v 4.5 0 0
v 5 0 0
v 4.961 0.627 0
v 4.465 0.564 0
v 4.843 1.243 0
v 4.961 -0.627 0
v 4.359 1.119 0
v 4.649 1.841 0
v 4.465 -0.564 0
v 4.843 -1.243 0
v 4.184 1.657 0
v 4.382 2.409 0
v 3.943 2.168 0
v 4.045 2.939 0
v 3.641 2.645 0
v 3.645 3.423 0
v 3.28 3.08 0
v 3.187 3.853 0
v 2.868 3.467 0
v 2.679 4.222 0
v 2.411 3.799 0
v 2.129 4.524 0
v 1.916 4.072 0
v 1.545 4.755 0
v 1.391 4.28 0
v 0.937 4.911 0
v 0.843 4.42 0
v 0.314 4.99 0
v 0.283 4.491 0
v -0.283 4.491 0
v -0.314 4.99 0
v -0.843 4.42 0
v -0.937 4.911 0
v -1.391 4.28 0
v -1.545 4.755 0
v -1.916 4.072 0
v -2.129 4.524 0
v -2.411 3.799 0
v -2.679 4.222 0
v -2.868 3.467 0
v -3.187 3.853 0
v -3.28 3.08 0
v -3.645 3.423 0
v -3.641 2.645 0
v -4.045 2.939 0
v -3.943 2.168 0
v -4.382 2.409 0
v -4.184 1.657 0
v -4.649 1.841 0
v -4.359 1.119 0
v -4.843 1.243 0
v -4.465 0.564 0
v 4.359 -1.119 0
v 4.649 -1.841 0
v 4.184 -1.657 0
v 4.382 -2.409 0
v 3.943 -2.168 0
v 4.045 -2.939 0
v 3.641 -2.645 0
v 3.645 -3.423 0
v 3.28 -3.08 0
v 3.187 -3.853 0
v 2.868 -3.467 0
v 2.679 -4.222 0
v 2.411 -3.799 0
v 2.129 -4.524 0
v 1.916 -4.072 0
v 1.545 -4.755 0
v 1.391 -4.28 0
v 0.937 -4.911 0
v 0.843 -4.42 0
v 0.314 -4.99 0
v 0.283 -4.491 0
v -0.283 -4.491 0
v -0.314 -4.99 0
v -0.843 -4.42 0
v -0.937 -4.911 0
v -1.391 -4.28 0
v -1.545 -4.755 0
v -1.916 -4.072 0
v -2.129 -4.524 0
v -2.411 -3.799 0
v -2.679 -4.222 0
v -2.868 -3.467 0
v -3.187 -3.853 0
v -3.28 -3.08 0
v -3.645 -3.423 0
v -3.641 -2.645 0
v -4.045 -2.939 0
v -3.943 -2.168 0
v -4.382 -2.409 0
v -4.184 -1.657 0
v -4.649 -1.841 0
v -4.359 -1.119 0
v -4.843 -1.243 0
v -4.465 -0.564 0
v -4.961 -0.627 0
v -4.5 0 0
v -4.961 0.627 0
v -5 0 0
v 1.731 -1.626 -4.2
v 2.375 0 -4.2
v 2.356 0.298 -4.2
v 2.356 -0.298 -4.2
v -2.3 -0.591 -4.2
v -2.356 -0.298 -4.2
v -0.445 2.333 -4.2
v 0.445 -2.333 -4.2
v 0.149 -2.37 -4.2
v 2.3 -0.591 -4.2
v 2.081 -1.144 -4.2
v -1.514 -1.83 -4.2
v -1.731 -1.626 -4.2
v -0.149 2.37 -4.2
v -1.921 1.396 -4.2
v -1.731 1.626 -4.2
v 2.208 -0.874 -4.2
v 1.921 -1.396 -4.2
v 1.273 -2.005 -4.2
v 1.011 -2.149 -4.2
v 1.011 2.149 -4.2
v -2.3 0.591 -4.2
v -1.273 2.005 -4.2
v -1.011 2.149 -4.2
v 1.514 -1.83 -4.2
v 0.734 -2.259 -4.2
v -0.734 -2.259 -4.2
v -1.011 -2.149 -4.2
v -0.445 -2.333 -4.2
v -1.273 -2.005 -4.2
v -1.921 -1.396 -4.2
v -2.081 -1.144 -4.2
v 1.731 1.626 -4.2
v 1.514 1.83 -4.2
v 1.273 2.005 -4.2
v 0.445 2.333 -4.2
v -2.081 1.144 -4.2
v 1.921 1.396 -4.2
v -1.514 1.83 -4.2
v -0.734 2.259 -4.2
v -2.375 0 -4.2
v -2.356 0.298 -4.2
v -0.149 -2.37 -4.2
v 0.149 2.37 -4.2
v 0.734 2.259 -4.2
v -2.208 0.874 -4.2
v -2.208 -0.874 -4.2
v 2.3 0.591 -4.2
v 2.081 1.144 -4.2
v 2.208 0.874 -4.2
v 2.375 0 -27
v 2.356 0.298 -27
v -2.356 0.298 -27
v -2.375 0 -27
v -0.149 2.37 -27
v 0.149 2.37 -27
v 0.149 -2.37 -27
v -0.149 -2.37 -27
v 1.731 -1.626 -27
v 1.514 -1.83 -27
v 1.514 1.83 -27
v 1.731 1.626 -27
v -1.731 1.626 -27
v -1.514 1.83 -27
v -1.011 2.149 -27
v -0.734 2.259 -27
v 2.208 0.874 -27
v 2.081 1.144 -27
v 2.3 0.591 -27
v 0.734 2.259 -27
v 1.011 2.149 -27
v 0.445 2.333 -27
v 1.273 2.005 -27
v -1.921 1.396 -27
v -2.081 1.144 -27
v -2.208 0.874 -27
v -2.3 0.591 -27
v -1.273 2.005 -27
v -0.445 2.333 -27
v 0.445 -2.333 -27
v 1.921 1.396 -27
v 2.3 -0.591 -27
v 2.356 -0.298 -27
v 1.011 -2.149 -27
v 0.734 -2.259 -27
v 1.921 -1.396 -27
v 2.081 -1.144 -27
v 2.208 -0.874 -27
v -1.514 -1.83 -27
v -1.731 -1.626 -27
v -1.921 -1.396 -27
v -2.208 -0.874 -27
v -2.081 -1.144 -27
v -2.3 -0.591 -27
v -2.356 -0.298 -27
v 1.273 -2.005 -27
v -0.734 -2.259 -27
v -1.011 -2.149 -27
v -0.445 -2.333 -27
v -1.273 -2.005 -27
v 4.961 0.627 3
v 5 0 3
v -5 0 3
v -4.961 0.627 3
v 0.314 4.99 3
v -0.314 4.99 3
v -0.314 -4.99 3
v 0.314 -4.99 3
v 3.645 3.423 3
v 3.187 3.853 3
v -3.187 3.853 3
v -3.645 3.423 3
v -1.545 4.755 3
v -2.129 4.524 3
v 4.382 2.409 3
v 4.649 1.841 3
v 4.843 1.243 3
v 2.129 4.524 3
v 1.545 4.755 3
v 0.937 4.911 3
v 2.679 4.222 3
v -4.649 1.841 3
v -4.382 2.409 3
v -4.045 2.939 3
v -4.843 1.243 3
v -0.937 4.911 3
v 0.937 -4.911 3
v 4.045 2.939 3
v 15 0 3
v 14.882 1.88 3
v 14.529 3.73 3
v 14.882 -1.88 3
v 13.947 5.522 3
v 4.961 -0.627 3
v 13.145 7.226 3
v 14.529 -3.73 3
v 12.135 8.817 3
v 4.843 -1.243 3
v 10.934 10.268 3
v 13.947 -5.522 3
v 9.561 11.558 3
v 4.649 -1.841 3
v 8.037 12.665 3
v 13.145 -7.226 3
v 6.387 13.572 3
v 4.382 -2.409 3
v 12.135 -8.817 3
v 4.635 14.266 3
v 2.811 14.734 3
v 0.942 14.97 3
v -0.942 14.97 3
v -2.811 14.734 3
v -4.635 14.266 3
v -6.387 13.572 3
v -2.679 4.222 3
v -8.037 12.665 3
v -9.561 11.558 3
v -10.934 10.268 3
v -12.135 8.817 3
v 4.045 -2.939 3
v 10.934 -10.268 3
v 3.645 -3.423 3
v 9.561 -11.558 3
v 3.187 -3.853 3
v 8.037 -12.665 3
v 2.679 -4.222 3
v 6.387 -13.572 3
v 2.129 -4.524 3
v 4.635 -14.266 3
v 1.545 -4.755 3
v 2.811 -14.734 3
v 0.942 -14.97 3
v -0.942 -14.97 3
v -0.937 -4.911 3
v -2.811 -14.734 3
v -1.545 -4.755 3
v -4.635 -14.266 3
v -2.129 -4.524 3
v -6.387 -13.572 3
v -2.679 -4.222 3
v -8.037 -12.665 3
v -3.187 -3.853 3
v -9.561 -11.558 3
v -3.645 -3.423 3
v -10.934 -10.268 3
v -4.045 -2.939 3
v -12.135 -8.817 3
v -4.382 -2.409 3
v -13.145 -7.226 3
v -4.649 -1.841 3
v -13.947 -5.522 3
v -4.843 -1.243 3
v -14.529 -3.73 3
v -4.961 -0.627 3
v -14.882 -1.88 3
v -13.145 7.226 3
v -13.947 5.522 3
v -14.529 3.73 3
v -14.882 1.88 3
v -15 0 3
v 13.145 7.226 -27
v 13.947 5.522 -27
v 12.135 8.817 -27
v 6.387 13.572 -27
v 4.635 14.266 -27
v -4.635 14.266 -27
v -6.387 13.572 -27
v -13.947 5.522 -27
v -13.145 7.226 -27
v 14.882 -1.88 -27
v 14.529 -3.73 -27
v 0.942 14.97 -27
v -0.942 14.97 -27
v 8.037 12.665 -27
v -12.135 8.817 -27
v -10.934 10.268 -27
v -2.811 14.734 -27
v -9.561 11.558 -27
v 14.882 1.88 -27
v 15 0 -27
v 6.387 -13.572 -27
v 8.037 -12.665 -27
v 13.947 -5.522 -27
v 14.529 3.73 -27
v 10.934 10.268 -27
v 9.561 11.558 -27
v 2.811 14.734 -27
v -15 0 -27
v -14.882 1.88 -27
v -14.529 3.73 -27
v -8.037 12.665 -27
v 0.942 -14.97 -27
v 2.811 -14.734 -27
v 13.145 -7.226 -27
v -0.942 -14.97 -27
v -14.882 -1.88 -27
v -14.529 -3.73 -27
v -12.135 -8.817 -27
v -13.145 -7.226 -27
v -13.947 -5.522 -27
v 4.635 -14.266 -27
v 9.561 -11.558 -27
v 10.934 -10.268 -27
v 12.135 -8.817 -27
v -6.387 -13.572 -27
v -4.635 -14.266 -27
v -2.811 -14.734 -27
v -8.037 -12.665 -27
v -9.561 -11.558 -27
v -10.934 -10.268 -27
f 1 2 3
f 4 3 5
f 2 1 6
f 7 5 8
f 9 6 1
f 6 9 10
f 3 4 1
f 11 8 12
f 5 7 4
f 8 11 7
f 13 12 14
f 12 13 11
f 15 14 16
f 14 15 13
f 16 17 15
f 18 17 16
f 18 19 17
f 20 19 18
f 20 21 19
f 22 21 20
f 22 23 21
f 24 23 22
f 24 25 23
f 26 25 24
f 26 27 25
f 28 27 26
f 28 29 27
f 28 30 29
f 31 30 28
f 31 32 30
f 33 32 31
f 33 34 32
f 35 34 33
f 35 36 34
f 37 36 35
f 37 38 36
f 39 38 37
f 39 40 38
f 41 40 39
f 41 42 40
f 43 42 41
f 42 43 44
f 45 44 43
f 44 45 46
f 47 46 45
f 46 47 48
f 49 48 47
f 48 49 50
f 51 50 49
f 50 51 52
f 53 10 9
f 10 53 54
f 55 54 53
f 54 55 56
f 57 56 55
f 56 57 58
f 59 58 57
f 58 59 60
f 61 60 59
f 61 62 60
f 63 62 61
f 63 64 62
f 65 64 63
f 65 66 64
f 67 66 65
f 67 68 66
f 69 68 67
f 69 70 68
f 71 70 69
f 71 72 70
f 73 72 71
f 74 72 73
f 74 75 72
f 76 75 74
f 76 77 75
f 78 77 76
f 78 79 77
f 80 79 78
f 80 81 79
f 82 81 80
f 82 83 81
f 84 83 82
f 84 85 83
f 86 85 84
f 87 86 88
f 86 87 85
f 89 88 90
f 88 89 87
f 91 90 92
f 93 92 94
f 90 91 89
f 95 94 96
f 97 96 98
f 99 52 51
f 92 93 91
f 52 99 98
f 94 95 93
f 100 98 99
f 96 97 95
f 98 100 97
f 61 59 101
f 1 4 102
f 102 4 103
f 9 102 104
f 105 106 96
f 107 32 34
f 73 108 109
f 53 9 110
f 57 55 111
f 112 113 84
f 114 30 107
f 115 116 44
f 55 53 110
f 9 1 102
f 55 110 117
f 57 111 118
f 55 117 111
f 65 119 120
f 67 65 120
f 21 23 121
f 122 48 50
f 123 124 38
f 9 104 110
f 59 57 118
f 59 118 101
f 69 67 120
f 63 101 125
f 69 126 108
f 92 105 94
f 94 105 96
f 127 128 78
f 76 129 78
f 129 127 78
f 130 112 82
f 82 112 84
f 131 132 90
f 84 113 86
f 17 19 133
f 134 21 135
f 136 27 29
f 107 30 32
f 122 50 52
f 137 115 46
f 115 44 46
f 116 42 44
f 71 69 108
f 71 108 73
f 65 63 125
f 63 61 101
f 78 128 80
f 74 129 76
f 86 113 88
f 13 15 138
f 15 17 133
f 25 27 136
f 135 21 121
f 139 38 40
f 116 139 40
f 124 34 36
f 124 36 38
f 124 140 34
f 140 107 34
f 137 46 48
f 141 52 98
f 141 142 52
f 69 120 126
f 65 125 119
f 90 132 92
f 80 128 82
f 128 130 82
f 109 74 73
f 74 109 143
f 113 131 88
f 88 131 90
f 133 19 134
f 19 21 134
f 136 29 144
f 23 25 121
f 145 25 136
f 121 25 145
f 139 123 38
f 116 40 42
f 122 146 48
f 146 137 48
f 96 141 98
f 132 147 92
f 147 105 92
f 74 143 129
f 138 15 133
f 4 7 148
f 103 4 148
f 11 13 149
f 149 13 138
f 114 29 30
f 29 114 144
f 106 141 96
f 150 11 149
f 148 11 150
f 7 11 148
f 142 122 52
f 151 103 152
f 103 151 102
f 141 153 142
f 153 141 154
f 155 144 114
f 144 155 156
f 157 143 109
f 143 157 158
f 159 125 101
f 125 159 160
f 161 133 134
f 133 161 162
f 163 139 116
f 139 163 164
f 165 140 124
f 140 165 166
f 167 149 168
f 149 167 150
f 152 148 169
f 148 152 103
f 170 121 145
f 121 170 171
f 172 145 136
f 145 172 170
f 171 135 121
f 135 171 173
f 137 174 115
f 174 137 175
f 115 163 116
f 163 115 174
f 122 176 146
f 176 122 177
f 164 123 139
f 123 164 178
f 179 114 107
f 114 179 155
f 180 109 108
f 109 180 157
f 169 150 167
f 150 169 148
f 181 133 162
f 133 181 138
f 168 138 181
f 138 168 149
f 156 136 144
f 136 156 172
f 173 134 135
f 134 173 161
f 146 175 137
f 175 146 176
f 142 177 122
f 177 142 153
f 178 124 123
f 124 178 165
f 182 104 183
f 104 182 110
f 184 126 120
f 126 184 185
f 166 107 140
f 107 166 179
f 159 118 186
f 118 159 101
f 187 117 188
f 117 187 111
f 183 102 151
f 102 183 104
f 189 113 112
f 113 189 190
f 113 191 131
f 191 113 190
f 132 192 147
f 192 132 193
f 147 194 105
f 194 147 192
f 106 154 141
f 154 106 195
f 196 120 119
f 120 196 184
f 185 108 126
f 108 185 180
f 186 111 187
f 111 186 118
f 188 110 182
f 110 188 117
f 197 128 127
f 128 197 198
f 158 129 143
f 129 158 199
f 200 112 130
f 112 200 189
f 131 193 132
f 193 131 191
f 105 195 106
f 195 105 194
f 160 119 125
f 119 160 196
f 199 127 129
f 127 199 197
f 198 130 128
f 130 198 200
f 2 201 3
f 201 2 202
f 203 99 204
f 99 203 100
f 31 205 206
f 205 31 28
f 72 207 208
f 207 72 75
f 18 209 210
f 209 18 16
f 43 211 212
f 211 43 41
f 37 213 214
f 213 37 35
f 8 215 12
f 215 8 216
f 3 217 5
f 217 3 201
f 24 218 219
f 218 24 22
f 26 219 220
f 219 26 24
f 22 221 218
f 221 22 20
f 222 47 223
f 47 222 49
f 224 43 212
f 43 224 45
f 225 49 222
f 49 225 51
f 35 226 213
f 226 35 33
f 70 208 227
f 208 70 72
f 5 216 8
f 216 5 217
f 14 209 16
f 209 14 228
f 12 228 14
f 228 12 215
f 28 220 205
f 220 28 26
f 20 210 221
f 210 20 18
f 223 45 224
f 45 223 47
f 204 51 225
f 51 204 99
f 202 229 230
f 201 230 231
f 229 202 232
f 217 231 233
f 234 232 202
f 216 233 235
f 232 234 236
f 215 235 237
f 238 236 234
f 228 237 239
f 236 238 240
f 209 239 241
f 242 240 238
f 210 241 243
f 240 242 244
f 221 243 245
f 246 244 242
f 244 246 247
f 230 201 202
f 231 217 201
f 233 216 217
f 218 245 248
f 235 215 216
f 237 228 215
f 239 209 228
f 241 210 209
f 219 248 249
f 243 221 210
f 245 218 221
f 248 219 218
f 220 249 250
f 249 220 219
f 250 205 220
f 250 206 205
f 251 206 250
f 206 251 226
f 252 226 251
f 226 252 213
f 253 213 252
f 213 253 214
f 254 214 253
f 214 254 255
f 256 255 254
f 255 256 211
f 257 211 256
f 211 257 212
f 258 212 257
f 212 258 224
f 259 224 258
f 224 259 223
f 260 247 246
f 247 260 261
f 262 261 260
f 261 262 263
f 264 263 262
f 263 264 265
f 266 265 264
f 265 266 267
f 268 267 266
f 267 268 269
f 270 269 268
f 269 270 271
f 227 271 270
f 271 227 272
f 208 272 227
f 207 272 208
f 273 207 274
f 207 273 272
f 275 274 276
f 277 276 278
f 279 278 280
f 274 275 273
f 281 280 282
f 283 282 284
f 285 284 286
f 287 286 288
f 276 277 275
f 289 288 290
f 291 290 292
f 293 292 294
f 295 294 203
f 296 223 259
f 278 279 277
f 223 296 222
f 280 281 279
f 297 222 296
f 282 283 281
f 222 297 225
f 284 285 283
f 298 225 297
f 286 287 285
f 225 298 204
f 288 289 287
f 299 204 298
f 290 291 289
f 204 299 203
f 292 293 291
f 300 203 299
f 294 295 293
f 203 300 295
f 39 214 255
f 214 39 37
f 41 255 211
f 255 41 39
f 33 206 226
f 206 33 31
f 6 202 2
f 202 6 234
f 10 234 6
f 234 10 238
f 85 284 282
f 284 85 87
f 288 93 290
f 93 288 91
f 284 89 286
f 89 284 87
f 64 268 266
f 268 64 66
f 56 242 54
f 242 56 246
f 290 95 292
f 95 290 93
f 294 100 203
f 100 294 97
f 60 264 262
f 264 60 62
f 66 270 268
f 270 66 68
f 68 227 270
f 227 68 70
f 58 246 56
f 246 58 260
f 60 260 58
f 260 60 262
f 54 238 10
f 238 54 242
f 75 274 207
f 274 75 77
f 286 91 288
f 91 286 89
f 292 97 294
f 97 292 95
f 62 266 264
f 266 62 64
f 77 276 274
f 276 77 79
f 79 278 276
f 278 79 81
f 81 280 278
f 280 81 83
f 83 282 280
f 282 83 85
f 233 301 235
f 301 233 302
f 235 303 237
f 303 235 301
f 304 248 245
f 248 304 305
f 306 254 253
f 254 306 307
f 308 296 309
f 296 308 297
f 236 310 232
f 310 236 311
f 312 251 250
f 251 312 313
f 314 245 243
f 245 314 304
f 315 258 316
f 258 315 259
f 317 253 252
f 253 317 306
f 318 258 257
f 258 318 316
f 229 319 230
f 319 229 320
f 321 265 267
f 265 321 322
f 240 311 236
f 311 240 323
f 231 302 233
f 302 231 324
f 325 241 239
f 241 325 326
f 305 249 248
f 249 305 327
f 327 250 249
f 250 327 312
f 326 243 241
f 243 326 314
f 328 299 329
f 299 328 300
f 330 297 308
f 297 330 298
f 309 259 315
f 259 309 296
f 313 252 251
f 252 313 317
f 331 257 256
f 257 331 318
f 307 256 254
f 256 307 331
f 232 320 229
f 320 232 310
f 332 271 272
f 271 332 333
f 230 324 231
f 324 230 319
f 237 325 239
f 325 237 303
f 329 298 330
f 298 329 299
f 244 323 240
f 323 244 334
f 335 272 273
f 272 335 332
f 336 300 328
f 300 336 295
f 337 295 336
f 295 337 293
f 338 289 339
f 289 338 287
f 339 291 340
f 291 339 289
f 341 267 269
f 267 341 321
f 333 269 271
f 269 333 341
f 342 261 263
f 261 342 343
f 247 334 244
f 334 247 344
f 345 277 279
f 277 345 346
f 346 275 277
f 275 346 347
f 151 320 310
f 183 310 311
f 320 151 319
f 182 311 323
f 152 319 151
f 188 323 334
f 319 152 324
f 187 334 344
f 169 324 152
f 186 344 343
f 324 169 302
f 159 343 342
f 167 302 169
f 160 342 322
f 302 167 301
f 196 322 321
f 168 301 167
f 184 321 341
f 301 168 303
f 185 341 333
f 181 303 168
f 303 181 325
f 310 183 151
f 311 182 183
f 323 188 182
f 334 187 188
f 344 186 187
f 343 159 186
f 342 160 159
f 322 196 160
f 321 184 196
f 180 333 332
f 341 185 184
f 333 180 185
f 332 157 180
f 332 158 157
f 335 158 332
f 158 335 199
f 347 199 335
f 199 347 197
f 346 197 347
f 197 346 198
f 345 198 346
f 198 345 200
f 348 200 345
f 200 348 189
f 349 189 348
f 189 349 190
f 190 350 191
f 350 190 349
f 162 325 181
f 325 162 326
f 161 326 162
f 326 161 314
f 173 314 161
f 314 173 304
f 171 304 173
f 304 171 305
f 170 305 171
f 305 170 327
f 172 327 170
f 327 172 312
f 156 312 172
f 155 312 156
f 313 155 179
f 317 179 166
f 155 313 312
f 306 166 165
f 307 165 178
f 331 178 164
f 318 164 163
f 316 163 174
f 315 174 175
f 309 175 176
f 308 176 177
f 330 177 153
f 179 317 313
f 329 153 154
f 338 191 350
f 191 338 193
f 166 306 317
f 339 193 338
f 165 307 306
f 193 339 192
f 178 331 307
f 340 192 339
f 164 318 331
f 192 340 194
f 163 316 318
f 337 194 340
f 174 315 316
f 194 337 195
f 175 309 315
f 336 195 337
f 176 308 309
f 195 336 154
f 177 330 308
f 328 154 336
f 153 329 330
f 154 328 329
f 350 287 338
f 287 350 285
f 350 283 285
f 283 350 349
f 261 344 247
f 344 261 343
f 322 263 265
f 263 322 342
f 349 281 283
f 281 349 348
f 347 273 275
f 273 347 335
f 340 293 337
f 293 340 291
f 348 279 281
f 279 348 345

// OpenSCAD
$fn = 50;

difference() {
	union() {
		translate(v = [0, 0, -27.0]) {
			cylinder(h = 30, r = 15.0);
		}
	}
	union() {
		translate(v = [0, 0, 0]) {
			rotate(a = [0, 0, 0]) {
				difference() {
					union() {
						translate(v = [0, 0, -30.0]) {
							cylinder(h = 30, r = 2.25);
						}
						translate(v = [0, 0, -4.2]) {
							cylinder(h = 4.2, r1 = 2.375, r2 = 4.5);
						}
						translate(v = [0, 0, -30.0]) {
							cylinder(h = 30, r = 2.375);
						}
						translate(v = [0, 0, -30.0]) {
							cylinder(h = 30, r = 2.25);
						}
					}
					union();
				}
			}
		}
		#cylinder(h = 3, r = 5.0);
	}
}
